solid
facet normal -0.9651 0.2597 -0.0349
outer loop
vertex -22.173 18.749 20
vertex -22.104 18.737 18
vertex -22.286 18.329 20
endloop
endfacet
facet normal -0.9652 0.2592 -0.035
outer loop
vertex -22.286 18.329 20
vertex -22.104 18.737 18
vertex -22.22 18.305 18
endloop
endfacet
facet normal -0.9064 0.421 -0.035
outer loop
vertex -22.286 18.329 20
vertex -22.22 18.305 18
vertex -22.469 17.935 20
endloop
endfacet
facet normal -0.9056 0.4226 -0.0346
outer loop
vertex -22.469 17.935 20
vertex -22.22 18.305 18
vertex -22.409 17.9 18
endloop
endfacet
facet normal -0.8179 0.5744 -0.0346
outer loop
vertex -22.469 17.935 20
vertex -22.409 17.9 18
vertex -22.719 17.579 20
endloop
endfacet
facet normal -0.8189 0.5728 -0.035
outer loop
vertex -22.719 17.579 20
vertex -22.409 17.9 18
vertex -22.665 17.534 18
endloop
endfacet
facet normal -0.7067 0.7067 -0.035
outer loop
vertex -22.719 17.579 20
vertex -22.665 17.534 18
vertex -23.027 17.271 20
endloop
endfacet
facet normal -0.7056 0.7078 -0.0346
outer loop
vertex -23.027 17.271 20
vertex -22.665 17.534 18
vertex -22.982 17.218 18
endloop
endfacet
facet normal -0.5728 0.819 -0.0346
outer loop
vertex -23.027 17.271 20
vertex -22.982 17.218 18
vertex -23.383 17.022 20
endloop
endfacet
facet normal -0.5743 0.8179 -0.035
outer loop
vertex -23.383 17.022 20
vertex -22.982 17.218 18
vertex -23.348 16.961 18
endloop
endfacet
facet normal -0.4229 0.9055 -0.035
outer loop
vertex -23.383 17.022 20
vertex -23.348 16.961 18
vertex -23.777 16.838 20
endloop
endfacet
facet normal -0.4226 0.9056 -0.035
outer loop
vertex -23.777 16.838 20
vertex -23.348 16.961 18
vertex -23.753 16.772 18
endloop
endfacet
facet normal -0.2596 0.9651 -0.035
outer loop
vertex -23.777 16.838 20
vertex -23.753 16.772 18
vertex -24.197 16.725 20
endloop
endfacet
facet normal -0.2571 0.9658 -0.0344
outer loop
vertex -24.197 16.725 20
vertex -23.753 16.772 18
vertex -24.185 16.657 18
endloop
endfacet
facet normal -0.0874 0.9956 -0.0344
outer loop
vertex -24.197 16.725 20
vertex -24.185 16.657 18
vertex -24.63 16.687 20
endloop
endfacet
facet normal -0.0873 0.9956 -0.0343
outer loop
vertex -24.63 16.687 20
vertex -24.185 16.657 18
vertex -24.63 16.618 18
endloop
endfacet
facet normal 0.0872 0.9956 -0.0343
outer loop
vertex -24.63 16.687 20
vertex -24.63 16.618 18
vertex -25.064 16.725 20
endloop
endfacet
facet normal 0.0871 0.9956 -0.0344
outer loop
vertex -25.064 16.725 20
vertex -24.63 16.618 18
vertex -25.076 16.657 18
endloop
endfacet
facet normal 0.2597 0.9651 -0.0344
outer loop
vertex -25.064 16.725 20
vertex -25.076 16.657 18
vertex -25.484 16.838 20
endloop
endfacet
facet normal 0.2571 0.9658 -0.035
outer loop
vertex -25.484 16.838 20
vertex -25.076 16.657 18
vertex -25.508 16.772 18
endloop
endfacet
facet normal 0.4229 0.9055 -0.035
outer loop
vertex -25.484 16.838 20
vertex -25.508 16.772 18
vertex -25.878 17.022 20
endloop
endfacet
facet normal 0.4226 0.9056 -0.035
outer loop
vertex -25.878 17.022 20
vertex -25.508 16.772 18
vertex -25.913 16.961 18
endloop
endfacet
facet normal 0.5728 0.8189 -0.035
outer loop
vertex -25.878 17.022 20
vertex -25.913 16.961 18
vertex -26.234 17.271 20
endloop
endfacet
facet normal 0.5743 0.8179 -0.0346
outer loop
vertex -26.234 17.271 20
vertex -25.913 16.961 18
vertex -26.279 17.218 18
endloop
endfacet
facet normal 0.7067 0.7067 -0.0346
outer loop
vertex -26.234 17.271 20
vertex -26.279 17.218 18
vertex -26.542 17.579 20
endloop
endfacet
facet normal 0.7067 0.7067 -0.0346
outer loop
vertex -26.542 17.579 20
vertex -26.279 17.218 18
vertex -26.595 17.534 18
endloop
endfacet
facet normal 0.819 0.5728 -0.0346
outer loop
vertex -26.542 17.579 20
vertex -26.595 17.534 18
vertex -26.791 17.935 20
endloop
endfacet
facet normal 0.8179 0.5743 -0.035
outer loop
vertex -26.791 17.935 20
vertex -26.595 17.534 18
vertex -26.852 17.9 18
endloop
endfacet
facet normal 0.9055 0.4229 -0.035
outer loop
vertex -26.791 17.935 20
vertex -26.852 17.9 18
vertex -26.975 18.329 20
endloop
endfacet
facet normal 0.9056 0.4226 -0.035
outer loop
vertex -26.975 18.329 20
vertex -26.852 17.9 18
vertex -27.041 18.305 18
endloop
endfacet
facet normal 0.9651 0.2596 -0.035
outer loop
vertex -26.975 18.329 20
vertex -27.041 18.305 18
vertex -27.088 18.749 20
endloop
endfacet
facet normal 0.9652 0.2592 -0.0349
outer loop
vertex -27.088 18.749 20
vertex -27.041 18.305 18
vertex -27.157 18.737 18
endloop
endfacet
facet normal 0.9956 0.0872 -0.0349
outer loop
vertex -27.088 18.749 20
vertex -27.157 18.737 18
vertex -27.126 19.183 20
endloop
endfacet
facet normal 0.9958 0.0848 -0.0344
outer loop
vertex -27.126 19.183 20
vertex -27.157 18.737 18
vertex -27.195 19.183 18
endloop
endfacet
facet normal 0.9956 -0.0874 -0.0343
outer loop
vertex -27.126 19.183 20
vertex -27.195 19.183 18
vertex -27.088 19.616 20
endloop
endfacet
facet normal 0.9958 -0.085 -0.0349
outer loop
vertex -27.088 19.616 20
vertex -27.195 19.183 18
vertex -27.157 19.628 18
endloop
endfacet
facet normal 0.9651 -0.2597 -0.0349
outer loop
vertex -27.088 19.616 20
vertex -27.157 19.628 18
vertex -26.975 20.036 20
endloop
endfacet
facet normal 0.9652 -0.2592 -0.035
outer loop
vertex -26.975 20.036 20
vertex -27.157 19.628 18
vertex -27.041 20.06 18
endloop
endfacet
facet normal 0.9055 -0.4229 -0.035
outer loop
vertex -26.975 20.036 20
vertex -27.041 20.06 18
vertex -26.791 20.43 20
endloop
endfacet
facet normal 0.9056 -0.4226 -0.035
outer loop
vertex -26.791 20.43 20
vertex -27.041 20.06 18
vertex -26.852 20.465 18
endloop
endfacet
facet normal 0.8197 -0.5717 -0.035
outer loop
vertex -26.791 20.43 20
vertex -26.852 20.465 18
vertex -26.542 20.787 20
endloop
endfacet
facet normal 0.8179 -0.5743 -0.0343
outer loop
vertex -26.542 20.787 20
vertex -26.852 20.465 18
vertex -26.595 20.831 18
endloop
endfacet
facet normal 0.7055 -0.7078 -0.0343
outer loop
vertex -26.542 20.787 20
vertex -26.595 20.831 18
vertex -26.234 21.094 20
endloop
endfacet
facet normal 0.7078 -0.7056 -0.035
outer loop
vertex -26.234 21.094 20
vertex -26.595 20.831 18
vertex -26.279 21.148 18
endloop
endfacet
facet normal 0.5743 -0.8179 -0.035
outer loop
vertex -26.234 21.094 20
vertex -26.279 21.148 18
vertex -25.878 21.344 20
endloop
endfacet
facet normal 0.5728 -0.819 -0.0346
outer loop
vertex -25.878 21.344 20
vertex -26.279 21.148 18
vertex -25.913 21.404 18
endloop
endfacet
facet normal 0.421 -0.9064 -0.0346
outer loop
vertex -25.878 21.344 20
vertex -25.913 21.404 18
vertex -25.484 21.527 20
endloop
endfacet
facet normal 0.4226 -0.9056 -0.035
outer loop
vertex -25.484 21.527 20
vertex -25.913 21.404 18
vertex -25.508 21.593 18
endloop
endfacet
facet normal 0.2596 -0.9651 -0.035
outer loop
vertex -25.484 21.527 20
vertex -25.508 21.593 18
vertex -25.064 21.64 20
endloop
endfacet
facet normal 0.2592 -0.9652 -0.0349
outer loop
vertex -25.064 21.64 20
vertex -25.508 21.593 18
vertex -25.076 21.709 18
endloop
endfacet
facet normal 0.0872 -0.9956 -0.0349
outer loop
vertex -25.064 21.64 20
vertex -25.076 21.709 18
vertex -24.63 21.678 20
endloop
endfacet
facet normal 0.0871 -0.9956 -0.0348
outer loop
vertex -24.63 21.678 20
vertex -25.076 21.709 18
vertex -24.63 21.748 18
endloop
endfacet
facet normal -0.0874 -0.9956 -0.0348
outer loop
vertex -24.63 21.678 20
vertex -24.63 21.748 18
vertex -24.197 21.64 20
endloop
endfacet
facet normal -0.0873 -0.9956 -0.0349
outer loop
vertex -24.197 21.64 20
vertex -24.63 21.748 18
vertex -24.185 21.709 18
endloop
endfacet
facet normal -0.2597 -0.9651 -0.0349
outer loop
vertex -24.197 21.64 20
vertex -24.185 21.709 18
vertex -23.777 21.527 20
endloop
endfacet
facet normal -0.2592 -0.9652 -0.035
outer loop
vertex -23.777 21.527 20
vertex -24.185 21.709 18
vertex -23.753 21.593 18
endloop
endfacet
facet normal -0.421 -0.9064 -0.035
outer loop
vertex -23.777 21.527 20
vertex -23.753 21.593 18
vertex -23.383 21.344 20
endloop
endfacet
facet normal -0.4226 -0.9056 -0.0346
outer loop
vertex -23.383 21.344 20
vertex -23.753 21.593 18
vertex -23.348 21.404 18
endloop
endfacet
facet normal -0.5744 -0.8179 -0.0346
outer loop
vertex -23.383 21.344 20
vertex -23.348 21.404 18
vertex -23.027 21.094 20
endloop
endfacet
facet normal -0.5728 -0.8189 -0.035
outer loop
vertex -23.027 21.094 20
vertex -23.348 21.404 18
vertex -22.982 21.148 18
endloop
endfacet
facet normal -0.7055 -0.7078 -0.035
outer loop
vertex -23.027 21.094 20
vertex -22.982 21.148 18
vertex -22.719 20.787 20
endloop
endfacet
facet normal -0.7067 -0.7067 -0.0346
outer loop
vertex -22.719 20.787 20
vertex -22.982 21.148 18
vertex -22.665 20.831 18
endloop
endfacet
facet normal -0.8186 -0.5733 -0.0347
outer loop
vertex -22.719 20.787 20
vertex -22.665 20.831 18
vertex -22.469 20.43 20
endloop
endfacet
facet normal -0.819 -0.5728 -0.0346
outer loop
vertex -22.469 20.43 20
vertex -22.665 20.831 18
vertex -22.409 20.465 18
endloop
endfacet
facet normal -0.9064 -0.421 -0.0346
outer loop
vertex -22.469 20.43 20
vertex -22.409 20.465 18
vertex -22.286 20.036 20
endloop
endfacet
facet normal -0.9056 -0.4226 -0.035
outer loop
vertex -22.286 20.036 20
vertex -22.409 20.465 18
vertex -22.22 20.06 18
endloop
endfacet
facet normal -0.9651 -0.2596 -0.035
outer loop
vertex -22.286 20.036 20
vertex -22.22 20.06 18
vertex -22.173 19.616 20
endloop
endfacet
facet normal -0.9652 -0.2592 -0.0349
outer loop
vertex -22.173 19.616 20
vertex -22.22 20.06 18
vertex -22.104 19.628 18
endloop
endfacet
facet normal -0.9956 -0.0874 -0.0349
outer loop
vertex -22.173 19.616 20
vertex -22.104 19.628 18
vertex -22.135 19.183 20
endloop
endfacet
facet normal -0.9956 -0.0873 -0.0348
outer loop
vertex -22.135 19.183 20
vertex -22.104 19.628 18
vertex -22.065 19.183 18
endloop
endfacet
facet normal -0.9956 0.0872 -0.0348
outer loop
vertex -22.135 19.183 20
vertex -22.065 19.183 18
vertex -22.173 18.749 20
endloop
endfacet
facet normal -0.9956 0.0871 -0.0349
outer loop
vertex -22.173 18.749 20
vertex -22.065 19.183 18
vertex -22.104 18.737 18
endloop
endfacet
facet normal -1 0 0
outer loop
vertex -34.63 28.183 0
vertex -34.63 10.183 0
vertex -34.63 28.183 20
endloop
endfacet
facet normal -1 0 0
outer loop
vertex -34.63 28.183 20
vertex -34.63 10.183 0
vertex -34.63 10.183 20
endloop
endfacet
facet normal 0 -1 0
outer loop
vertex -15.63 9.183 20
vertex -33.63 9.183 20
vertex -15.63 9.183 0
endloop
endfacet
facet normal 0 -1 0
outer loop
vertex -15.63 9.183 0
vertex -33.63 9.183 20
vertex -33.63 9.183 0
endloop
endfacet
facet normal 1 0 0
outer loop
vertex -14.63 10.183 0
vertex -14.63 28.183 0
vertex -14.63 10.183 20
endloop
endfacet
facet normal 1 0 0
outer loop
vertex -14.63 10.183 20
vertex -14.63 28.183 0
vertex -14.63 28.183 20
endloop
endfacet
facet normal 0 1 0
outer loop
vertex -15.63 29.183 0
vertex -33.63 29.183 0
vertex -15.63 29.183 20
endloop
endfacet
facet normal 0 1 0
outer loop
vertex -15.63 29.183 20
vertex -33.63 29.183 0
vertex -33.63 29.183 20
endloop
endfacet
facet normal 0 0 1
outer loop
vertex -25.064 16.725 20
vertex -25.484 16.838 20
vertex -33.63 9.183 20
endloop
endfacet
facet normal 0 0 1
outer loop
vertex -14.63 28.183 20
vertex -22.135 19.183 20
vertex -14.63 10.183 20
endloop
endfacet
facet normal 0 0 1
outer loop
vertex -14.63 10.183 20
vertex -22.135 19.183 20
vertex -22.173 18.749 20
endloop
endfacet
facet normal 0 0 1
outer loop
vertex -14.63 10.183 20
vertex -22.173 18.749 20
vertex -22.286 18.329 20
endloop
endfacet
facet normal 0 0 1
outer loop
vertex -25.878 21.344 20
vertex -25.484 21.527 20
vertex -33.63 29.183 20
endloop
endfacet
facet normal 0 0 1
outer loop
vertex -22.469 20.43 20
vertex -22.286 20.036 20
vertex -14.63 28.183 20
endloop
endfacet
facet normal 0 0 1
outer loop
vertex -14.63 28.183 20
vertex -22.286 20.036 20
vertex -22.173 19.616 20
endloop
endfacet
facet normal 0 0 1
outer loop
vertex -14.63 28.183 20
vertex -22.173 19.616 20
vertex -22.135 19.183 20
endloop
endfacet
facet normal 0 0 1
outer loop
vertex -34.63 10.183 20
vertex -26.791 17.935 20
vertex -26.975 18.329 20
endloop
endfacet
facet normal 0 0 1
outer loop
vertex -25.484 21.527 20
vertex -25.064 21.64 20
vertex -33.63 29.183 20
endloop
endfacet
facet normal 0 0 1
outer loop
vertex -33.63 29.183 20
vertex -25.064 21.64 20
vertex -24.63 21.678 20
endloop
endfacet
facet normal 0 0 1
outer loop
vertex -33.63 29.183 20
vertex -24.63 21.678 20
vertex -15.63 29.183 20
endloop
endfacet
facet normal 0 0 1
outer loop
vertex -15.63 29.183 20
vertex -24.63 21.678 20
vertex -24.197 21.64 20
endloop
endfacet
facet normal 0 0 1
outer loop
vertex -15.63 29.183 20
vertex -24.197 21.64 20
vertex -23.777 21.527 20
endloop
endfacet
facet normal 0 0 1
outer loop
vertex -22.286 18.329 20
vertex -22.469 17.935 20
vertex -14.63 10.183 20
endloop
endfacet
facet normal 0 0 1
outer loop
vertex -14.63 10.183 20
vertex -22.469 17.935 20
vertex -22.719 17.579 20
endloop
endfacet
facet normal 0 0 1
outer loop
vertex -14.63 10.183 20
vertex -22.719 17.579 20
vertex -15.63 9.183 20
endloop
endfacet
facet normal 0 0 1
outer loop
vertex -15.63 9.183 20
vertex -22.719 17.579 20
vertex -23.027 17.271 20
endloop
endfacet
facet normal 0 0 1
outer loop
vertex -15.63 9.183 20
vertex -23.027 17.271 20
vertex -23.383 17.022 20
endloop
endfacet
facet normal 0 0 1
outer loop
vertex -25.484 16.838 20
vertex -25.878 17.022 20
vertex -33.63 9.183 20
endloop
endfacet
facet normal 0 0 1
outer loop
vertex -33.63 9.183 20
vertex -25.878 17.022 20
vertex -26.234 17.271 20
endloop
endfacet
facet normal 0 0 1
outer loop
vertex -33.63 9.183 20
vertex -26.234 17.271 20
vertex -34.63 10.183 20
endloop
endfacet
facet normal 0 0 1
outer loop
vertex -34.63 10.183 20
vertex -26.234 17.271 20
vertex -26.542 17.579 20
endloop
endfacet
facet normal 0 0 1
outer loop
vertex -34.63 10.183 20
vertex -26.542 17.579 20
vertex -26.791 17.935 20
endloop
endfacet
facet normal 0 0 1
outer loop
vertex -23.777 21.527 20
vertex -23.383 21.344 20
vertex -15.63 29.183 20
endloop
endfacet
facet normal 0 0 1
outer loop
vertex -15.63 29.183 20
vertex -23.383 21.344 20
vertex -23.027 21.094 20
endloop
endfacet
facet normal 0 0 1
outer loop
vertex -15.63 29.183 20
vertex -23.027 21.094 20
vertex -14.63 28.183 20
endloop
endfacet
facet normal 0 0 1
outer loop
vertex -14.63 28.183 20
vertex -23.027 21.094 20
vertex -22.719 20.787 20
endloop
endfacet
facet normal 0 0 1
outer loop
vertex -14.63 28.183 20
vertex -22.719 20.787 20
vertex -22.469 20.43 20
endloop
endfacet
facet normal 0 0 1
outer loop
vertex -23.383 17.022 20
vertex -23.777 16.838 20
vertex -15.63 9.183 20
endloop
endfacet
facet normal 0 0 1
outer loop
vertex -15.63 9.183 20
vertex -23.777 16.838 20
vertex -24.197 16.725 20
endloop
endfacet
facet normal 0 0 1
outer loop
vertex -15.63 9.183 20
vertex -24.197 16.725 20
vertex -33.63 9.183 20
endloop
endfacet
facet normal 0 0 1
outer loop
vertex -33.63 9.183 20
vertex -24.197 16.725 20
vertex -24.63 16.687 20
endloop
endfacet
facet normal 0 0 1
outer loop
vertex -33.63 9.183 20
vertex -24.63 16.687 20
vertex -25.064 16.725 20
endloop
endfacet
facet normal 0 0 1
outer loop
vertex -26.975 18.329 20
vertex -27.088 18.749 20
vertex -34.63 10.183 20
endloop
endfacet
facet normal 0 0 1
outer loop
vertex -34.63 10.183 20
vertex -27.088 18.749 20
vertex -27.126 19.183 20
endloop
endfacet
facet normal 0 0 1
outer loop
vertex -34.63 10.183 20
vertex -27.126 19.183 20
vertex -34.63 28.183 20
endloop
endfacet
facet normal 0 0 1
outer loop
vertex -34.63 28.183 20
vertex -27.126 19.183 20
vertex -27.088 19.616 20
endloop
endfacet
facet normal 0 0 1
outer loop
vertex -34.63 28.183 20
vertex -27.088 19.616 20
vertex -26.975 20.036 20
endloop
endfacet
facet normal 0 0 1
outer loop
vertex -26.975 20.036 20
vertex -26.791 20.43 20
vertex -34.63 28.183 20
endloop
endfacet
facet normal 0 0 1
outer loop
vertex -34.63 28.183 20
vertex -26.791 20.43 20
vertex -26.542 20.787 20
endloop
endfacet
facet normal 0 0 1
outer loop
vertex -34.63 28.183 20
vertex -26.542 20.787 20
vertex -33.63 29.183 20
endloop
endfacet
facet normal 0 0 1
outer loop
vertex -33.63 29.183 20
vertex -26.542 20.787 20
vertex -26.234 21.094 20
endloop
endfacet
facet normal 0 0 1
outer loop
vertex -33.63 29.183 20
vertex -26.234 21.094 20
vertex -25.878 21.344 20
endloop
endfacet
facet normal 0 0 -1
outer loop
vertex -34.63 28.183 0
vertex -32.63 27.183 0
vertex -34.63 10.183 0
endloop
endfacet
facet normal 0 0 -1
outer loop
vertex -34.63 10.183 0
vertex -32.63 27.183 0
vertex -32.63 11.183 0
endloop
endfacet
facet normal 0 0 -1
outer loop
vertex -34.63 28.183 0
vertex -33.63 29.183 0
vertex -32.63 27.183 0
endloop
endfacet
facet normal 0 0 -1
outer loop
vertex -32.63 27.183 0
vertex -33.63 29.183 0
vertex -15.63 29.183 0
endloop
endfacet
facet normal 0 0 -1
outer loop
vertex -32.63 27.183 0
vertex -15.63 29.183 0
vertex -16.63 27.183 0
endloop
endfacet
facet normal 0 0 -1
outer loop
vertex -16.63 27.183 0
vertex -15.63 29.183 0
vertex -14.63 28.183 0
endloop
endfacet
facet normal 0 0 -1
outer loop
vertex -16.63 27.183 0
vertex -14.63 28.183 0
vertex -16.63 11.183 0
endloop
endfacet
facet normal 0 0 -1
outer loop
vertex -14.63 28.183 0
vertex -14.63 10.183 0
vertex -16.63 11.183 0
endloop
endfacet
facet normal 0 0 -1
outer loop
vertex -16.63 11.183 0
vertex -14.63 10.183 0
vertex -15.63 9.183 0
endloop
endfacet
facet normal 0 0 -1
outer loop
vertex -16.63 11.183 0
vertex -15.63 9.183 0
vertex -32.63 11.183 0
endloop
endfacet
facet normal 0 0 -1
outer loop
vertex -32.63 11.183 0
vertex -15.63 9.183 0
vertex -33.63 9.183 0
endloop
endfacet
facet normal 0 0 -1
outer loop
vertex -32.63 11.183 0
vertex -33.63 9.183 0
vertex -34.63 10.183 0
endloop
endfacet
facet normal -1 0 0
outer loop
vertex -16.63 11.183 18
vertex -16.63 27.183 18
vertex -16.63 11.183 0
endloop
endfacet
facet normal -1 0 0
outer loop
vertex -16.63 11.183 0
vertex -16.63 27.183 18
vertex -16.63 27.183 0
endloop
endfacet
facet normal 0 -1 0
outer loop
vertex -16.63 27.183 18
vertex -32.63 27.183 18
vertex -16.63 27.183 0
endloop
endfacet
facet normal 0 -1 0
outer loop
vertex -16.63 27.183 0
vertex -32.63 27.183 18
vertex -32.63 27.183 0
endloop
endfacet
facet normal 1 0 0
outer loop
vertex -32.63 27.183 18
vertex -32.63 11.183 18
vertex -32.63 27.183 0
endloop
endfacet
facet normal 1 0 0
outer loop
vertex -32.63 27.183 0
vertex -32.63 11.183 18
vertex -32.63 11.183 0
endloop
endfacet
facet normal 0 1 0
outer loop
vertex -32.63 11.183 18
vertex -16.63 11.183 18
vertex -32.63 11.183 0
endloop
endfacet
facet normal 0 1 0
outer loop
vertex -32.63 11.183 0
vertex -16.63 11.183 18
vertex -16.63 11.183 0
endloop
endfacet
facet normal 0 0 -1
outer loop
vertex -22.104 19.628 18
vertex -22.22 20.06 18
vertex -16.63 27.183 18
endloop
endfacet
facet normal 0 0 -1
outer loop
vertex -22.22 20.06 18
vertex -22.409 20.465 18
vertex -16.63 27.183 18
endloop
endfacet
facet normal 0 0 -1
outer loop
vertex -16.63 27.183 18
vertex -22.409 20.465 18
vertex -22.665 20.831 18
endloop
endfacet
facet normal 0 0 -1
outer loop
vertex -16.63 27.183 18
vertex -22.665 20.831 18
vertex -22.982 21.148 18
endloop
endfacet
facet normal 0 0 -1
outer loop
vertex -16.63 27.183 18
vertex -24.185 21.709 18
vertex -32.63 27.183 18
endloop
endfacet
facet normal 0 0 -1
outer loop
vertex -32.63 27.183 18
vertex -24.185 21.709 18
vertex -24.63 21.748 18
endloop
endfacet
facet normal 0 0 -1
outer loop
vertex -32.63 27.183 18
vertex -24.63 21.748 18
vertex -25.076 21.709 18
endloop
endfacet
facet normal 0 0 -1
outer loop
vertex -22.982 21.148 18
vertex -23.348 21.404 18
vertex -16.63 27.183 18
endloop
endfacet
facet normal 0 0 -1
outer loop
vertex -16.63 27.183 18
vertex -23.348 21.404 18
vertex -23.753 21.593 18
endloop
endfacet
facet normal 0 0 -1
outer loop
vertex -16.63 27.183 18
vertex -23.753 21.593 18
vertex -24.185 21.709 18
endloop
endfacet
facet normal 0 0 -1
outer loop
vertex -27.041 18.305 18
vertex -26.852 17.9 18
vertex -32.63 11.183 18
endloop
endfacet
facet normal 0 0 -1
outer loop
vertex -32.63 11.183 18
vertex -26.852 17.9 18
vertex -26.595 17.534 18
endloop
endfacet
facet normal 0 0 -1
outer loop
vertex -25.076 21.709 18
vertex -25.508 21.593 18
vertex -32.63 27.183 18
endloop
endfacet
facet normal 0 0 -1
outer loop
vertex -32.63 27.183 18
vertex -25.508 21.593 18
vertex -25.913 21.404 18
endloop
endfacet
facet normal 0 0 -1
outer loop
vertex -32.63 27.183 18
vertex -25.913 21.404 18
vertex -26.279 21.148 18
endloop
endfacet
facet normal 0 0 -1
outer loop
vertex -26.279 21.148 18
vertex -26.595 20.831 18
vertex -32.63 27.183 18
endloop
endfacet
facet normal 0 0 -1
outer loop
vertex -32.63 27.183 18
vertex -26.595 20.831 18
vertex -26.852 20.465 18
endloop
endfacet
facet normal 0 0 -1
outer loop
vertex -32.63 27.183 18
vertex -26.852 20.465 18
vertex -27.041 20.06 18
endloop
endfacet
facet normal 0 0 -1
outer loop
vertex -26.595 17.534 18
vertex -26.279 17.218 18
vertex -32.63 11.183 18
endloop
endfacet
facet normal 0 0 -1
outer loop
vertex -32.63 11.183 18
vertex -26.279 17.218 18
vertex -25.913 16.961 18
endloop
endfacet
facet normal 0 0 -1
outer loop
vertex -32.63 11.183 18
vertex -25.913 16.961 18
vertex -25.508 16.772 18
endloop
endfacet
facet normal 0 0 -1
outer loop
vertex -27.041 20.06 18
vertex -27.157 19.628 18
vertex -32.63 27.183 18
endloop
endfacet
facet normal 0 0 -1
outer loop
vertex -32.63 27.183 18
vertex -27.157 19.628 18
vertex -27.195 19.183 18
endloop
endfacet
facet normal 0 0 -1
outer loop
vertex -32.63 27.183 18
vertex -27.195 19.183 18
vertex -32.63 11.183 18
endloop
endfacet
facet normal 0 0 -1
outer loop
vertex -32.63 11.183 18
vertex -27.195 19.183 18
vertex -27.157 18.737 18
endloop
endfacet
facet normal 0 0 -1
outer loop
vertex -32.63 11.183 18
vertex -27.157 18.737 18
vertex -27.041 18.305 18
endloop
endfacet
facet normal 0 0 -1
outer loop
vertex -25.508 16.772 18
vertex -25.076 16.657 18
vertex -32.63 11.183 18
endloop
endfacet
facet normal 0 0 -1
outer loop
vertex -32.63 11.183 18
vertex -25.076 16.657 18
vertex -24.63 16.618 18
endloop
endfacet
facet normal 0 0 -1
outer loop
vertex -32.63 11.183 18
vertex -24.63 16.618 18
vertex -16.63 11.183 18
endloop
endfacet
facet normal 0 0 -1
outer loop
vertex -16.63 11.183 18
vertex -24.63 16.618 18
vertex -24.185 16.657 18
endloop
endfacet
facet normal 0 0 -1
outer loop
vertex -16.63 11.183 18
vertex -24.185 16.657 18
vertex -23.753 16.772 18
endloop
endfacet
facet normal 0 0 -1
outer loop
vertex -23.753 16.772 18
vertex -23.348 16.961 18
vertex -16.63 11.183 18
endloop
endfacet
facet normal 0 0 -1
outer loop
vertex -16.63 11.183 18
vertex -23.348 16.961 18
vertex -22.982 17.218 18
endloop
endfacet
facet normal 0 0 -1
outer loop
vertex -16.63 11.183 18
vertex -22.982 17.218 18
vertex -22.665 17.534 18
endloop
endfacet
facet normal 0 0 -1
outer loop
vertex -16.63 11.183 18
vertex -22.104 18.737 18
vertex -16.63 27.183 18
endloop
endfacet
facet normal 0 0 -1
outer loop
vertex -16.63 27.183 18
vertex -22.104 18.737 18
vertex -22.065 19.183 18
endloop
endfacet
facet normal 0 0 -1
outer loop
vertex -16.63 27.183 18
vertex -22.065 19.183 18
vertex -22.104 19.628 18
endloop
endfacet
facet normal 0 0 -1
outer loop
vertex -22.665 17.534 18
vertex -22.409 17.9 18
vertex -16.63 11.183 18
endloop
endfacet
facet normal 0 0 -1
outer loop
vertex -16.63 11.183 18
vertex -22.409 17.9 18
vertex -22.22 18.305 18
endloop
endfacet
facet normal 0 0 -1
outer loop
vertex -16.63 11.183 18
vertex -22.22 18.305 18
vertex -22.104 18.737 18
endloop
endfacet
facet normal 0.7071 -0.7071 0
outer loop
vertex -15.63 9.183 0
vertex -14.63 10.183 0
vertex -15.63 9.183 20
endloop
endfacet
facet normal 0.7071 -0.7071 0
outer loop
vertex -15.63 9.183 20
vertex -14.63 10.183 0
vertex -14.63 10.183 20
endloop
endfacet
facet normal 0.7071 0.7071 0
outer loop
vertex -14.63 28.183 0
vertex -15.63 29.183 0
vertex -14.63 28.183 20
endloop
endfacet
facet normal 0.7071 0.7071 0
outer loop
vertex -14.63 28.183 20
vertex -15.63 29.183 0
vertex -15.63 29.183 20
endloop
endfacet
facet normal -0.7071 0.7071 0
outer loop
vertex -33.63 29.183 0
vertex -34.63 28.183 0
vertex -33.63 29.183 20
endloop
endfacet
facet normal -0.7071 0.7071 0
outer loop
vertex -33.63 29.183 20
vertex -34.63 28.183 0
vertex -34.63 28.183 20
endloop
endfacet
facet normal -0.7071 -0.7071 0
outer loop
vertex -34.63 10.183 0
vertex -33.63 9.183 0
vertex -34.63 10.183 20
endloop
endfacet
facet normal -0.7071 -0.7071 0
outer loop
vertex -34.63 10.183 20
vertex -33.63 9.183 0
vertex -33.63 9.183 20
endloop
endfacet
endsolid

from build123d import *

# Parameters (mm, degrees)
ESQUISSE1_W             = 20
ESQUISSE1_H             = 20
BOSS_EXTRU_1_DEPTH      = 20
ENL_V_START             = -3
ESQUISSE2_R             = 2.6
ENL_V_MAT_EXTRU_1_DEPTH = 53.506491459
ENL_V_MAT_EXTRU_1_TAPER = 2
ESQUISSE3_W             = 16
ESQUISSE3_H             = 16
ENL_V_MAT_EXTRU_2_DEPTH = 18
CHANFREIN1_SIZE         = 1


with BuildPart() as part:
    # Esquisse1 → Boss.-Extru.1 (new body)
    with BuildSketch(Plane.XY):
        with Locations((-24.630410255, 19.182655502)):
            Rectangle(ESQUISSE1_W, ESQUISSE1_H)
    extrude(amount=BOSS_EXTRU_1_DEPTH)

    # Esquisse2 → Enlèv. mat.-Extru.1 (cut, through all)
    with BuildSketch(Plane.XY.offset(20).offset(ENL_V_START)):
        with Locations((-24.630410255, 19.182655502)):
            Circle(ESQUISSE2_R)
    extrude(amount=ENL_V_MAT_EXTRU_1_DEPTH, taper=ENL_V_MAT_EXTRU_1_TAPER, mode=Mode.SUBTRACT)

    # Esquisse3 → Enlèv. mat.-Extru.2 (cut)
    with BuildSketch(Plane(origin=(0, 0, 0), x_dir=(-1, 0, 0), z_dir=(0, 0, -1))):
        with Locations((24.630410255, 19.182655502)):
            Rectangle(ESQUISSE3_W, ESQUISSE3_H)
    extrude(amount=-ENL_V_MAT_EXTRU_2_DEPTH, mode=Mode.SUBTRACT)

    # Chanfrein1
    chanfrein1_edges = [part.edges().sort_by_distance(p)[0] for p in [
        (-34.630410255, 29.182655502, 10),
        (-14.630410255, 29.182655502, 10),
        (-14.630410255, 9.182655502, 10),
        (-34.630410255, 9.182655502, 10),
    ]]
    chamfer(chanfrein1_edges, length=CHANFREIN1_SIZE)


solid = part.part
